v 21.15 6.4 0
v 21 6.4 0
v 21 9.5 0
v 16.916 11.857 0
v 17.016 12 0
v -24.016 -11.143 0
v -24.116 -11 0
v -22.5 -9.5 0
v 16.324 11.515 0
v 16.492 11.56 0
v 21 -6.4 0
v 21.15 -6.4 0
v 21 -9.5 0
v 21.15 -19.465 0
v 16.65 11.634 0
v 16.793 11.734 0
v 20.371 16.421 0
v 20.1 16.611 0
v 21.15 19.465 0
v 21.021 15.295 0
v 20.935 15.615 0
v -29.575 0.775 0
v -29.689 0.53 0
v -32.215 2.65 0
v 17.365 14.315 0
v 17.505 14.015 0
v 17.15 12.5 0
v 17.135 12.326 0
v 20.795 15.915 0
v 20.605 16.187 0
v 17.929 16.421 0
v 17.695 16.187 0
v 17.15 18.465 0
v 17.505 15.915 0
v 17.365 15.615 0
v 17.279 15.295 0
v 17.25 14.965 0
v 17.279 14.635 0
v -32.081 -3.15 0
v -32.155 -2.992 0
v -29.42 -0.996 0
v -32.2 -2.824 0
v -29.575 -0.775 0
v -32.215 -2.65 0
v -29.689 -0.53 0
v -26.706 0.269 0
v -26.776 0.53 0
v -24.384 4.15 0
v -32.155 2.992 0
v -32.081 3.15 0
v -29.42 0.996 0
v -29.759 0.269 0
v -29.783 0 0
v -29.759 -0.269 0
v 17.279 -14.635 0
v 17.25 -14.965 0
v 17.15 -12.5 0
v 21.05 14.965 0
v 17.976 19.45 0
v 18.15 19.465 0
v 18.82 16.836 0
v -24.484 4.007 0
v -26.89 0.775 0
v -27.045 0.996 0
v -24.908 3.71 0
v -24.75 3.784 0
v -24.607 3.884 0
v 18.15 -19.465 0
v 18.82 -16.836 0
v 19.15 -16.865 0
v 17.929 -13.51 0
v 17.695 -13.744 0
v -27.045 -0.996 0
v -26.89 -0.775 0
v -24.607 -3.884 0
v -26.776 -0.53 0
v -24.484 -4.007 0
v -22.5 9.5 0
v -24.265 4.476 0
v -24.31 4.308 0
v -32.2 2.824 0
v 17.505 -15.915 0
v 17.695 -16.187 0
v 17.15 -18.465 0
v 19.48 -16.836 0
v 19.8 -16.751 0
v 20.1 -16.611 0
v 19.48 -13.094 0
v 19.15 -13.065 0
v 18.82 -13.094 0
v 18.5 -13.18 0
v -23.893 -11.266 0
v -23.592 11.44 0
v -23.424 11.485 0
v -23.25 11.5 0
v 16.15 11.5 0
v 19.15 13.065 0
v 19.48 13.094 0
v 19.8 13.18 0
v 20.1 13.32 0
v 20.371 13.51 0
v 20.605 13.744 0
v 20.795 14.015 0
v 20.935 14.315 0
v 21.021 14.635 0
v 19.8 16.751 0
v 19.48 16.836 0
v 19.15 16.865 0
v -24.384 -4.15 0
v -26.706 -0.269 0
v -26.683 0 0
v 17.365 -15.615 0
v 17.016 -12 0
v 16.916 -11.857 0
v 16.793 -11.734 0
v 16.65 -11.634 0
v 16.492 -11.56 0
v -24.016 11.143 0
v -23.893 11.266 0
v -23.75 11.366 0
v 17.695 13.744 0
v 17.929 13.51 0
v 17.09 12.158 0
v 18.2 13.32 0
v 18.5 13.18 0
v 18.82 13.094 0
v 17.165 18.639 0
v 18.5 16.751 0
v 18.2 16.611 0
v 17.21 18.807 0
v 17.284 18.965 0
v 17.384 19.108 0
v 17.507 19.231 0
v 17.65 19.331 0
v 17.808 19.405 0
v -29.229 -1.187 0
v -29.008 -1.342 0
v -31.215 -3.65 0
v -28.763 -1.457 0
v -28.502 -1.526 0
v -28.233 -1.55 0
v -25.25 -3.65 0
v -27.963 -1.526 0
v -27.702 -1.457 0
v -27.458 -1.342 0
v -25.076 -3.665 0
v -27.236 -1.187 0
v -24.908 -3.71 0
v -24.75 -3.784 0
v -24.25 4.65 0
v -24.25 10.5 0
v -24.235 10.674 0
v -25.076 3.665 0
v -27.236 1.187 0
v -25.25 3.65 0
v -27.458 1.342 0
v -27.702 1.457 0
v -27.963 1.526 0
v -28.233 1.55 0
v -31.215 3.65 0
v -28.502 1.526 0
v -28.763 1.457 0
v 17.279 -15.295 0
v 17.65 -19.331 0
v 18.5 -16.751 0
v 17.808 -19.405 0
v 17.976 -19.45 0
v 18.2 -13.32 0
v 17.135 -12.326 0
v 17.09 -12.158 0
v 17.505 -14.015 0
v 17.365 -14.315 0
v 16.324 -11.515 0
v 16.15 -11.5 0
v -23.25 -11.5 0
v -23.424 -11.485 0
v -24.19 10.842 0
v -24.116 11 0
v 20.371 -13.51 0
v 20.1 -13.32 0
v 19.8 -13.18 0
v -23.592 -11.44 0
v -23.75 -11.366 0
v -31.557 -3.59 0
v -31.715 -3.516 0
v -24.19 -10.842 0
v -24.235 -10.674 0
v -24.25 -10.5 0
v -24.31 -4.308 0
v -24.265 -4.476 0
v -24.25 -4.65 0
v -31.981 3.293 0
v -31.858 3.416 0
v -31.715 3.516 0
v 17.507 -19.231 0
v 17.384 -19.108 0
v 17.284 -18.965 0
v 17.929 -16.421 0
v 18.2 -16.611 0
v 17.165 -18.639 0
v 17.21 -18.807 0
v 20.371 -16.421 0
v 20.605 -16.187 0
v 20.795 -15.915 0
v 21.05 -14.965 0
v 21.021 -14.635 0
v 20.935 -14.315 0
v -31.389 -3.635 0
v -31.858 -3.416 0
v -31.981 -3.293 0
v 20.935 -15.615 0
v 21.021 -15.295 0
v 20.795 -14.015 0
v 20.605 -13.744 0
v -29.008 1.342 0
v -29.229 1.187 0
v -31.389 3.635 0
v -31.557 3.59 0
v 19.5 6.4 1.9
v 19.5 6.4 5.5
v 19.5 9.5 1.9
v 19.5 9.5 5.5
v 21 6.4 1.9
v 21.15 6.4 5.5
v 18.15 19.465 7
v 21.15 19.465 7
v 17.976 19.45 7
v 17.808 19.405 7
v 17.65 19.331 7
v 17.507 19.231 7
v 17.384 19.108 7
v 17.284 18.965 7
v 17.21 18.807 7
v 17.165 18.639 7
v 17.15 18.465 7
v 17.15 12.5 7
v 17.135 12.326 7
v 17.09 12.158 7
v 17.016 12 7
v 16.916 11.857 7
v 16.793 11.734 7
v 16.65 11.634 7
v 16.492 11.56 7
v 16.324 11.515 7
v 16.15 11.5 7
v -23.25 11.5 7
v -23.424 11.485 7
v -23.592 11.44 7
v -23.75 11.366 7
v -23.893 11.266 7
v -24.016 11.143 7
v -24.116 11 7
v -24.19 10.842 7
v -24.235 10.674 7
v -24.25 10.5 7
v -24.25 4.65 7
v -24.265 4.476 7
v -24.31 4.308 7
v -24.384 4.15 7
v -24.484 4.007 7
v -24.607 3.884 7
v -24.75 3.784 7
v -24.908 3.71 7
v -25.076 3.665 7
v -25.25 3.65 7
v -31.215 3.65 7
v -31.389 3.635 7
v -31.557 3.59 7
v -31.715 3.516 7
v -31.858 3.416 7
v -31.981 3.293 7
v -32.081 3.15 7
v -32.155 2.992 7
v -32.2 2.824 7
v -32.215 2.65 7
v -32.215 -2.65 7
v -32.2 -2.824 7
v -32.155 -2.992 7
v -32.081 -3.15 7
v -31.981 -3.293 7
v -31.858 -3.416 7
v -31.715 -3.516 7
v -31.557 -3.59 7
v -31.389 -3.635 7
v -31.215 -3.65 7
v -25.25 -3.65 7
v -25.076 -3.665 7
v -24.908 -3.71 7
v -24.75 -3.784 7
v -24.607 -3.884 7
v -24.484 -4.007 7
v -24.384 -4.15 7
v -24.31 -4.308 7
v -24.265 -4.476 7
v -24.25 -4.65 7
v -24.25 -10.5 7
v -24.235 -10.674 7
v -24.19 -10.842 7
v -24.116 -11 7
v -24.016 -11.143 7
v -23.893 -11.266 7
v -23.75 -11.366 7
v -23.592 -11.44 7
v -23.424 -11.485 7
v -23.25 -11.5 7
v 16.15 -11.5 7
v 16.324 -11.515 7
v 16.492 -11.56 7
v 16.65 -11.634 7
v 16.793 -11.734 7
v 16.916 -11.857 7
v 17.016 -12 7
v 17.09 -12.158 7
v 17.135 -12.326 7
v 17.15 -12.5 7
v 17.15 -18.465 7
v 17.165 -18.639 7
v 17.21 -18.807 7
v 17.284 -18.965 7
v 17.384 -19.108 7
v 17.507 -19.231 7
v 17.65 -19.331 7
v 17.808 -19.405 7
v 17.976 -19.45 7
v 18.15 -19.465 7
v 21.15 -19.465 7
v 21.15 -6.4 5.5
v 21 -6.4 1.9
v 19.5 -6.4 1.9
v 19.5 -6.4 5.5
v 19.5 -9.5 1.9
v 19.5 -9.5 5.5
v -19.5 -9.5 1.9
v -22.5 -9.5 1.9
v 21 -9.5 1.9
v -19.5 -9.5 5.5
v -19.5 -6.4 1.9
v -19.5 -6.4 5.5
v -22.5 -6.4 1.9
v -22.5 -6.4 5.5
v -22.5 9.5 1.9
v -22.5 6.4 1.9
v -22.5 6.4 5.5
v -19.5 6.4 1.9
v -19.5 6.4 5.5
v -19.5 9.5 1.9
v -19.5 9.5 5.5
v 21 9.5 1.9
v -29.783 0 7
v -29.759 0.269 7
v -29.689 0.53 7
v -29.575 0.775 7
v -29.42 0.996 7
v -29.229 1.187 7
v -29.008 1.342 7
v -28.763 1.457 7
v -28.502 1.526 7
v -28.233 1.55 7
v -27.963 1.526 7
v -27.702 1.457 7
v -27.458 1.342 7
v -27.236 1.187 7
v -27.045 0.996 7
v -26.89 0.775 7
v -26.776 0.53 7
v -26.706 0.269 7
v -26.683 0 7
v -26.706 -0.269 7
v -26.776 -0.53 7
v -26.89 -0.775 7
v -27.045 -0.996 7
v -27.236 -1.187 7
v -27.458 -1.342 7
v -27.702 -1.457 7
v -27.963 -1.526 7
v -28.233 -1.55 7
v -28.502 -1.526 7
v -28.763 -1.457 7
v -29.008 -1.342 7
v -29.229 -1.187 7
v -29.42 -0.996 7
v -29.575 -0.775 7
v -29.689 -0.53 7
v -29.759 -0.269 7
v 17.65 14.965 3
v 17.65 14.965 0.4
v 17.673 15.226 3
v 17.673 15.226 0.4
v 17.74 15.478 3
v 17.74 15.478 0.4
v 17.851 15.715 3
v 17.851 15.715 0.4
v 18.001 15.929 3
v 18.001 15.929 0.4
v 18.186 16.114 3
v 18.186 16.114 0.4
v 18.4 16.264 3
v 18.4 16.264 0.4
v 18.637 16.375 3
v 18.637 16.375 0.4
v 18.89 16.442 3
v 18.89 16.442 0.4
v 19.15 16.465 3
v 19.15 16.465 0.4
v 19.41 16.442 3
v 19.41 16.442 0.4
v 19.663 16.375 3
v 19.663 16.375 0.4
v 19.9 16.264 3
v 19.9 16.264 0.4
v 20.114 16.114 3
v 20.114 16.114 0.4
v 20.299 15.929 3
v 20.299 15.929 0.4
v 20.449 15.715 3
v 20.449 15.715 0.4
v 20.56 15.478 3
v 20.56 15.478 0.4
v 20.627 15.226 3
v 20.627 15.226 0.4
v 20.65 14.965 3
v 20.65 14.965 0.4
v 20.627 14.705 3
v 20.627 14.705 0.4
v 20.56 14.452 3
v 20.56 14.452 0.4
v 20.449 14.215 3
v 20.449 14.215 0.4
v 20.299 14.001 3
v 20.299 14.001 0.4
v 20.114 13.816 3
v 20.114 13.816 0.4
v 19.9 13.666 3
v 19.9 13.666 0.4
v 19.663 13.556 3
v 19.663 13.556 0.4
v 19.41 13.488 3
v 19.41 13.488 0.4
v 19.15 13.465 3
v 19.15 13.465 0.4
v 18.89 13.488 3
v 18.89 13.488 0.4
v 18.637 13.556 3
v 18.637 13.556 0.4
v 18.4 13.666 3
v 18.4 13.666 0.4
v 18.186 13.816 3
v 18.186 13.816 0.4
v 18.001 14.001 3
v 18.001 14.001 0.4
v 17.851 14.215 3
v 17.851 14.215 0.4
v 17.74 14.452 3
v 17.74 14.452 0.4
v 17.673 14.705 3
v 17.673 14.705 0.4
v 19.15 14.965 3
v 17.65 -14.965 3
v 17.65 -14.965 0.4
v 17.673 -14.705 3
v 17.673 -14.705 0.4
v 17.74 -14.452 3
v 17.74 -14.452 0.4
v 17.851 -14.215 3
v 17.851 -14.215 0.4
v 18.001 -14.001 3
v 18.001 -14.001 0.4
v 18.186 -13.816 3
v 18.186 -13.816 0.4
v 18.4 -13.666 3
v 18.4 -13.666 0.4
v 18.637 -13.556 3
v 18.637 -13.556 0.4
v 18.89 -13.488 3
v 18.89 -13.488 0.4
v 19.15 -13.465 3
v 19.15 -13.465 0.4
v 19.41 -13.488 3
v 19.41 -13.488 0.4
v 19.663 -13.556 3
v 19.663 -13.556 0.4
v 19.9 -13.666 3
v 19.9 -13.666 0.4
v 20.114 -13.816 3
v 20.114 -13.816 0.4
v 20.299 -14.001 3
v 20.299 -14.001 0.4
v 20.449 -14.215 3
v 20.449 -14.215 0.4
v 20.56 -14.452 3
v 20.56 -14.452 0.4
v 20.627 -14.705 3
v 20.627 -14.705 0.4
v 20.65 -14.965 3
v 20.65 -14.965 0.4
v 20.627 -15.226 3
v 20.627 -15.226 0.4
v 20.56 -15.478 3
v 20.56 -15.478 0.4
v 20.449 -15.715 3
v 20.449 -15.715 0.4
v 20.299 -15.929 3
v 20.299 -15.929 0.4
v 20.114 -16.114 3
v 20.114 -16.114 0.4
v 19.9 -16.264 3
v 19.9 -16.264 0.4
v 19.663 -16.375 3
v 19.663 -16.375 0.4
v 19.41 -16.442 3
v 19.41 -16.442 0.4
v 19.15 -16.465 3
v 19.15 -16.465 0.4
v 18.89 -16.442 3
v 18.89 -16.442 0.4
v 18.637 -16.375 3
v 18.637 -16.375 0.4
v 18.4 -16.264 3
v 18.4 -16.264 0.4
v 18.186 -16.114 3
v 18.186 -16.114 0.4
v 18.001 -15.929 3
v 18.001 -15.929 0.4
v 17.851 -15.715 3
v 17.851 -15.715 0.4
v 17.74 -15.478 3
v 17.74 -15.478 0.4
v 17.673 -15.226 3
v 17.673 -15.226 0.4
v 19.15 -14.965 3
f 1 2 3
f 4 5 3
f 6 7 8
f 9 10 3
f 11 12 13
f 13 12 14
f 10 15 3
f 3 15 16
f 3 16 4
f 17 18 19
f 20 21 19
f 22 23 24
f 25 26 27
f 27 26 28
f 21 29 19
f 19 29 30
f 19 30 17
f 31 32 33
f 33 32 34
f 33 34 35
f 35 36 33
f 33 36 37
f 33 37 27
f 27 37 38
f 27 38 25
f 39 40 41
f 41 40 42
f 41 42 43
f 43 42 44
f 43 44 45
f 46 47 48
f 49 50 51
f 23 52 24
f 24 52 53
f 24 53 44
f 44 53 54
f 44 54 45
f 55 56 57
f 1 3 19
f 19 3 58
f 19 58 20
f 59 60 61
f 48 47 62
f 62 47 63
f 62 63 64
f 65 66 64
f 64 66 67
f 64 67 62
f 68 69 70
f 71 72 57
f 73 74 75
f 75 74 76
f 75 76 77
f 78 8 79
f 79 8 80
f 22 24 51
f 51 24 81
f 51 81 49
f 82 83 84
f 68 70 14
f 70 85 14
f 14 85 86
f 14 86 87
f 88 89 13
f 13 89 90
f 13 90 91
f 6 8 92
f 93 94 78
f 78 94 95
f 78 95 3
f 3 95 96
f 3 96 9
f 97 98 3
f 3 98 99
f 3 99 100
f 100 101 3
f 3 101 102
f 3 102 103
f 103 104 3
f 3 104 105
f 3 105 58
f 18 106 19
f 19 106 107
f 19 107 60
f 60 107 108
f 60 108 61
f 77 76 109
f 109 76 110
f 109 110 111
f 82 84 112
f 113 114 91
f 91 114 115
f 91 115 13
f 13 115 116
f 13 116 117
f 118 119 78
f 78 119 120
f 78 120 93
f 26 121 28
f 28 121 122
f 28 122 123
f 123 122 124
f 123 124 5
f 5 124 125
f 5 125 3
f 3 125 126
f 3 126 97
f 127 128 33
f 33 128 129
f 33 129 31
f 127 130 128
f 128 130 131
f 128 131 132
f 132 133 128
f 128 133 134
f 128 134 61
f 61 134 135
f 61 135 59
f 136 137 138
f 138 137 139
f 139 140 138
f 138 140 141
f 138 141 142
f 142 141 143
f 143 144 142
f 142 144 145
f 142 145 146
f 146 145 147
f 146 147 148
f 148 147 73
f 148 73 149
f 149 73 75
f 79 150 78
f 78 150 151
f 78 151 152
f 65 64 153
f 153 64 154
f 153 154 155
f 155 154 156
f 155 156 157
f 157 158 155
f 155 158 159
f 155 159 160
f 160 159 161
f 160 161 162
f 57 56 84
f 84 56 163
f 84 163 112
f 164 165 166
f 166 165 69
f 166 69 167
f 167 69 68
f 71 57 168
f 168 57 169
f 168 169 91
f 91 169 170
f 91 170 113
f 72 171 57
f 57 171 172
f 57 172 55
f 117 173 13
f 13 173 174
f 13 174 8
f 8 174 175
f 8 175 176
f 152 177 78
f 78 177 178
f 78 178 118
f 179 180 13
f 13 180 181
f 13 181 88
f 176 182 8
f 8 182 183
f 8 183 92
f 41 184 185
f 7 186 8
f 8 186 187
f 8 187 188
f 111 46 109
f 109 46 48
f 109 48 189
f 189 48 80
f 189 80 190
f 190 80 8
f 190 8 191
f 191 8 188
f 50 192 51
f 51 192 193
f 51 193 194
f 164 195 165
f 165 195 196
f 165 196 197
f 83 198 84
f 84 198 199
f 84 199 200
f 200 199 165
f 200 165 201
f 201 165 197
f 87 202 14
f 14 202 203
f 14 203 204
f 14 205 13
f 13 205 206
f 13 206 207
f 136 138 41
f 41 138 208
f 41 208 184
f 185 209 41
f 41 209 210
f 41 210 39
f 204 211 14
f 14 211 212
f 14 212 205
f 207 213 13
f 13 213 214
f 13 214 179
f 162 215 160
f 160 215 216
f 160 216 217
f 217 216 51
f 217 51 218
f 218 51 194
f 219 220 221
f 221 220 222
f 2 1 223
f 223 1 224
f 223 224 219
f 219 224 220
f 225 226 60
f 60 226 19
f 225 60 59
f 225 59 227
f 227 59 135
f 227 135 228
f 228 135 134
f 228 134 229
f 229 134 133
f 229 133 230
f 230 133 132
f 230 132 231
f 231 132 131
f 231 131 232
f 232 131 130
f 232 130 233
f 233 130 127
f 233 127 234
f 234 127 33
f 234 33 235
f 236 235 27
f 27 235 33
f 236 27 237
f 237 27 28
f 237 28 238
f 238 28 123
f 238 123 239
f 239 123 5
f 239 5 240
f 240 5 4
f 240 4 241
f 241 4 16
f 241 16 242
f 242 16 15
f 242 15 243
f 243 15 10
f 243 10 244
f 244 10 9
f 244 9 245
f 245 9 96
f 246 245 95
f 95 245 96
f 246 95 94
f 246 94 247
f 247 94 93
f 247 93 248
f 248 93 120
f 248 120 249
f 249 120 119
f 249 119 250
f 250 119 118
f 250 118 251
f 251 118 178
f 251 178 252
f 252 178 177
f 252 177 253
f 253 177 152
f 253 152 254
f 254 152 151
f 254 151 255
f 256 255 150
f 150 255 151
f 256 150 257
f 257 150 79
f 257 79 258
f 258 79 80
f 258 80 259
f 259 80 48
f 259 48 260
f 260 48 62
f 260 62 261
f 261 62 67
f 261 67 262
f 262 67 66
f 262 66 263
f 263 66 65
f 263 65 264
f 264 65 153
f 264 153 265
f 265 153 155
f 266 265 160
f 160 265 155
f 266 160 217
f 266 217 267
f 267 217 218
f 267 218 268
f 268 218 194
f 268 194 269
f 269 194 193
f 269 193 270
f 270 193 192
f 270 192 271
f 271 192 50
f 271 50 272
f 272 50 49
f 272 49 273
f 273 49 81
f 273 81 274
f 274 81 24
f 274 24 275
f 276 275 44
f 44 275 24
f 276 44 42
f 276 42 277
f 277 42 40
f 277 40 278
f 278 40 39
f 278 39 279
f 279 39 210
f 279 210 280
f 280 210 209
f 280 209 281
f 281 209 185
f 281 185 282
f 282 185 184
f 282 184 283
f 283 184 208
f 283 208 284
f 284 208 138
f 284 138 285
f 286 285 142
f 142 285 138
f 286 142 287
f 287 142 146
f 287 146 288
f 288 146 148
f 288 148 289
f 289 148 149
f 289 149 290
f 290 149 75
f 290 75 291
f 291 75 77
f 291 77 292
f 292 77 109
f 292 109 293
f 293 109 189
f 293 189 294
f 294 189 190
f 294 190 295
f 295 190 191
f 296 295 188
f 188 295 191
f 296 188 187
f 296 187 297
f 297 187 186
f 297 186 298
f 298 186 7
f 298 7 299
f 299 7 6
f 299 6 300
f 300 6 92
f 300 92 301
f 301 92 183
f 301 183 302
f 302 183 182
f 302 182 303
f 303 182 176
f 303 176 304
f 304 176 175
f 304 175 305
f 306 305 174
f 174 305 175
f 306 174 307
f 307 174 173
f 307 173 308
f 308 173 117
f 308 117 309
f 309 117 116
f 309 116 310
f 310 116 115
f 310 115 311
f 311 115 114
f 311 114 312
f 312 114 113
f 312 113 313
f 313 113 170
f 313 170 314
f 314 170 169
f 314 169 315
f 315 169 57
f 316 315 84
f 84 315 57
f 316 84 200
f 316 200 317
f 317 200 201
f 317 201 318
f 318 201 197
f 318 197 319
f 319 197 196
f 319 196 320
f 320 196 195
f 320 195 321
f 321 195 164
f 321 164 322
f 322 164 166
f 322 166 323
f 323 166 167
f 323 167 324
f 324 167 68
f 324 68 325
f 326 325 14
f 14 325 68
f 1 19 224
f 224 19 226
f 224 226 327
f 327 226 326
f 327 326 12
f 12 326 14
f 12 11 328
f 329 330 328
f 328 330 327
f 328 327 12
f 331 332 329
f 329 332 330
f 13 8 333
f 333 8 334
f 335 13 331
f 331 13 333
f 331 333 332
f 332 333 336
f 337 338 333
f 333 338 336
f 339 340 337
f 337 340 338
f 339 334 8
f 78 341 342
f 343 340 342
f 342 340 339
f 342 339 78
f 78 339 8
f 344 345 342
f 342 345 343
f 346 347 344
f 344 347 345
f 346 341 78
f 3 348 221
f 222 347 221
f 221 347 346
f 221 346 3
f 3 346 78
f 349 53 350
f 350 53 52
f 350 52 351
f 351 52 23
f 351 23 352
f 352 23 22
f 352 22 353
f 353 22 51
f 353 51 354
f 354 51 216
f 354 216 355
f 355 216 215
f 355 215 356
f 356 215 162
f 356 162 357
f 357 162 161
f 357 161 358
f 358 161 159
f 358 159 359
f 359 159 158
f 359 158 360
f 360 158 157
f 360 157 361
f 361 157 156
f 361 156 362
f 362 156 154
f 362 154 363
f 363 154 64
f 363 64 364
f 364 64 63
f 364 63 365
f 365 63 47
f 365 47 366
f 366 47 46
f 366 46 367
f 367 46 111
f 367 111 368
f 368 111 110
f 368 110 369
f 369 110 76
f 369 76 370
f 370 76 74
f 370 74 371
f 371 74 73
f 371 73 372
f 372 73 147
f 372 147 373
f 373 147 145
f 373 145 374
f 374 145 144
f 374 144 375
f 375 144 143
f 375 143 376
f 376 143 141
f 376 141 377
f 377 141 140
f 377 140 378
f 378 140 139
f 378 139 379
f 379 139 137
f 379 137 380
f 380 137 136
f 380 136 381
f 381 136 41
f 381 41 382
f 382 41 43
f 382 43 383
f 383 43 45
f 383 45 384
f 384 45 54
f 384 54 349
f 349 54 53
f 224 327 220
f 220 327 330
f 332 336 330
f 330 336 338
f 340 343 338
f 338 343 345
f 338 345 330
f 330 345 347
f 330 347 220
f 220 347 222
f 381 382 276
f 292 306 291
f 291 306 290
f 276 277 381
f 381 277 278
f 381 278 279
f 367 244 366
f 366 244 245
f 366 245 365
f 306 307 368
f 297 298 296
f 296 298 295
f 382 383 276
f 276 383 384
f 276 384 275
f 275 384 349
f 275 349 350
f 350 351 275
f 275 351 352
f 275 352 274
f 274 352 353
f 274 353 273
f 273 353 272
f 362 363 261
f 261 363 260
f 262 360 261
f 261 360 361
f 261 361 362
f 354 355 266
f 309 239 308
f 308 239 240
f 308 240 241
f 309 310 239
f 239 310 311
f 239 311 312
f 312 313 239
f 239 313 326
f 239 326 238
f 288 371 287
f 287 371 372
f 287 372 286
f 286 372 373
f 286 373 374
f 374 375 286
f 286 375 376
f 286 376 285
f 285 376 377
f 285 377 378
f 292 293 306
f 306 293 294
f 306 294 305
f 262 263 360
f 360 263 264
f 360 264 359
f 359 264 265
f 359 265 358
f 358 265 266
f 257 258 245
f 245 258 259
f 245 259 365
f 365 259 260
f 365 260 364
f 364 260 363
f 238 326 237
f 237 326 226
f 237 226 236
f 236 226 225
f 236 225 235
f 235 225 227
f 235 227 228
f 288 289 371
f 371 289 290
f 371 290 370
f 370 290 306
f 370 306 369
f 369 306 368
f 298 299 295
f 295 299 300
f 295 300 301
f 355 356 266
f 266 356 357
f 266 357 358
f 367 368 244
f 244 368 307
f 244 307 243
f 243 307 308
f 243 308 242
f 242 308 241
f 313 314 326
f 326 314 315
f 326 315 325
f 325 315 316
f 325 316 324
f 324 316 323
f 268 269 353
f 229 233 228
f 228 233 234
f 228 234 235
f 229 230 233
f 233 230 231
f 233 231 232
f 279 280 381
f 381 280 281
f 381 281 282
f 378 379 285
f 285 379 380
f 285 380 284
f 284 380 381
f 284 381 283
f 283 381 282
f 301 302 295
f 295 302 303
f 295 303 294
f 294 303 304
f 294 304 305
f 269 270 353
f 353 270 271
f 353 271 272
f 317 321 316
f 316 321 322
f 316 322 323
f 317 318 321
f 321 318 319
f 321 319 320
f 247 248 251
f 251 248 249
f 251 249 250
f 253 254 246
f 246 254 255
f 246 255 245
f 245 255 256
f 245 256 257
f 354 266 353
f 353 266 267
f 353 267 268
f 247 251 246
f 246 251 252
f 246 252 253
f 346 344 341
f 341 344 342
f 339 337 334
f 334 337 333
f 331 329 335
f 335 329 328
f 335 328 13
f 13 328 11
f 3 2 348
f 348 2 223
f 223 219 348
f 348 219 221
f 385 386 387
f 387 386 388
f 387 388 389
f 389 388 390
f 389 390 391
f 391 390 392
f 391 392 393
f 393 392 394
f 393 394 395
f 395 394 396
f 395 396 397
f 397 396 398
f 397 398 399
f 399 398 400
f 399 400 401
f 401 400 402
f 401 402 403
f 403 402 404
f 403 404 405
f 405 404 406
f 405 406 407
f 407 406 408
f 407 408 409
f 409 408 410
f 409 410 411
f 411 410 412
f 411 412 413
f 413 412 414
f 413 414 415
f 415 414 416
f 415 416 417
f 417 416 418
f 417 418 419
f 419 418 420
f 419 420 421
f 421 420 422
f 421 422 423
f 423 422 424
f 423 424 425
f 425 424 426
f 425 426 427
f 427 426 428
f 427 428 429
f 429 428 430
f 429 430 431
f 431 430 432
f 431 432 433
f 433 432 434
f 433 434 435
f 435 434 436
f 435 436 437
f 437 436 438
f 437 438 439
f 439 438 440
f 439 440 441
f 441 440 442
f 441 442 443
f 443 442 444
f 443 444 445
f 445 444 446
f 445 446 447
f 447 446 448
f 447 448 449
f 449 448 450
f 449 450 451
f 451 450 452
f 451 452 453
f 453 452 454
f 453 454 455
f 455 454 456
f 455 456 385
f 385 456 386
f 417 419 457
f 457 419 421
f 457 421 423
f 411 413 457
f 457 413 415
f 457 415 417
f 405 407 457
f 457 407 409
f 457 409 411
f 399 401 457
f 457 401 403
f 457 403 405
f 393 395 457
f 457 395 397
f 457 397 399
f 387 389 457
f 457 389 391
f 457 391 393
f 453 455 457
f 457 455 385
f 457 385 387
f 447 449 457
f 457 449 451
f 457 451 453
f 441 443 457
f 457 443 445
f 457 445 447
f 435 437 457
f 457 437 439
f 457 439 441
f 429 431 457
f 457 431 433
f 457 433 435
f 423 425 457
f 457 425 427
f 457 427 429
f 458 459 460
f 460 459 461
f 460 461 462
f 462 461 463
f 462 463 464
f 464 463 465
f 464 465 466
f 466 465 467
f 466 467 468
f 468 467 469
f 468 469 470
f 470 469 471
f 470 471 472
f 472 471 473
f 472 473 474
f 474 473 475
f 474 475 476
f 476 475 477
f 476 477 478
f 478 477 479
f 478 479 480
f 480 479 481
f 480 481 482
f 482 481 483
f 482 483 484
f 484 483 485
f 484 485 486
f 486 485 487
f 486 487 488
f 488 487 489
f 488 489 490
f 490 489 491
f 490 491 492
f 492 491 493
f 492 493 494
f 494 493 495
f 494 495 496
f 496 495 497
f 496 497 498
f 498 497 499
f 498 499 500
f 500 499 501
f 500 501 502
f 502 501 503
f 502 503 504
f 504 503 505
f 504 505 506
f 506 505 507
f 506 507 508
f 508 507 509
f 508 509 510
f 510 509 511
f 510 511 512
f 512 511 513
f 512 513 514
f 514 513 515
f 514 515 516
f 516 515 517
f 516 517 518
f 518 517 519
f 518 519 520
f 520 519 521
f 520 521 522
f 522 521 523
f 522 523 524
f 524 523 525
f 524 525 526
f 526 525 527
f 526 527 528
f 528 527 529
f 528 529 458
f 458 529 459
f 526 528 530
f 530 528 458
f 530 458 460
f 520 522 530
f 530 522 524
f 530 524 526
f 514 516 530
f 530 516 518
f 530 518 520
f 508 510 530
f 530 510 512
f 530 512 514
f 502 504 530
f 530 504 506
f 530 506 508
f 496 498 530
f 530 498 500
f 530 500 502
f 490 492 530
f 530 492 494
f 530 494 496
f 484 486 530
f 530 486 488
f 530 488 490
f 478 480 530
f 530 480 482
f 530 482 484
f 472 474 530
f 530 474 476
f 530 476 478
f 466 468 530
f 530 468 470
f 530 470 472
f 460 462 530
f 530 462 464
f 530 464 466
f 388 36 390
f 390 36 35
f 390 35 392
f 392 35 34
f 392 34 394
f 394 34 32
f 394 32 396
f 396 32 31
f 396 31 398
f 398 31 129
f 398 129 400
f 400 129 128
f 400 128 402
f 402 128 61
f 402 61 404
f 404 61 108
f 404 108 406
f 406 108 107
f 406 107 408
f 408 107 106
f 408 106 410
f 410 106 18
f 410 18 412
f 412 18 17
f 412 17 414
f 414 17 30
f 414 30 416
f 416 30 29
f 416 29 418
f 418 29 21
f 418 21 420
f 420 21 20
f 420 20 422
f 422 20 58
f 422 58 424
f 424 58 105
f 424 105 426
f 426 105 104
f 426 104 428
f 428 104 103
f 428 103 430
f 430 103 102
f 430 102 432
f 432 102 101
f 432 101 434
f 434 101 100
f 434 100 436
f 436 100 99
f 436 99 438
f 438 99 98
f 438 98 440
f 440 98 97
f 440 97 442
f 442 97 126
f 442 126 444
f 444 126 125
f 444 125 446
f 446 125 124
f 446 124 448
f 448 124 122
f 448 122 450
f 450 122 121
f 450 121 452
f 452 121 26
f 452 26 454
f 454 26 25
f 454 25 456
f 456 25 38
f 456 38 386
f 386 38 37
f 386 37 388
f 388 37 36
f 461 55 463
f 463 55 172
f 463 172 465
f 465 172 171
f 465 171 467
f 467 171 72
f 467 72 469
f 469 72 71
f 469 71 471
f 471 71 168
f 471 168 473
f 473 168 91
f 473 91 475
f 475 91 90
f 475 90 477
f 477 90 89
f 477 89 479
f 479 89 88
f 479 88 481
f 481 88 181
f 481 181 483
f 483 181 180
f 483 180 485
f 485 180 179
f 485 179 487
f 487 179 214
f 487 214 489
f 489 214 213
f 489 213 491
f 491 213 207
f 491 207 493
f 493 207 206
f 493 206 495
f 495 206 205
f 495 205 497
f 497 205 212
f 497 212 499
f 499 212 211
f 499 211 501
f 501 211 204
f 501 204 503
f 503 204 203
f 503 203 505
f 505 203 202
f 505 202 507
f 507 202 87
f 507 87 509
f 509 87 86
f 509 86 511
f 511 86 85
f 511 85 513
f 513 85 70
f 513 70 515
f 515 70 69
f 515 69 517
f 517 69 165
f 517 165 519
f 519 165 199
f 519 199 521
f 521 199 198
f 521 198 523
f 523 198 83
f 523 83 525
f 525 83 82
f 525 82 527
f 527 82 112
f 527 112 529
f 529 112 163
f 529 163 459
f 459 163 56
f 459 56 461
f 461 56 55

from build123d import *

# Parameters (mm, degrees)
CROQUIS1_R              = 1.55
SALIENTE_EXTRUIR1_DEPTH = 5.5
CROQUIS2_R              = 1.55
SALIENTE_EXTRUIR2_DEPTH = 1.5
CROQUIS3_W              = 43.5
CROQUIS3_H              = 19
CORTAR_EXTRUIR1_DEPTH   = 1.9
CROQUIS4_R              = 1.5
CORTAR_EXTRUIR2_DEPTH   = 3
CHAFL_N1_SIZE           = 0.4


with BuildPart() as part:
    # Croquis1 → Saliente-Extruir1 (new body)
    with BuildSketch(Plane.XY):
        with BuildLine():
            Line((16.15, 11.5), (-23.25, 11.5))
            ThreePointArc((-23.25, 11.5), (-23.957106781, 11.207106781), (-24.25, 10.5))
            Line((-24.25, 10.5), (-24.25, 4.65))
            ThreePointArc((-24.25, 4.65), (-24.542893219, 3.942893219), (-25.25, 3.65))
            Line((-25.25, 3.65), (-31.215212315, 3.65))
            ThreePointArc((-31.215212315, 3.65), (-31.922319096, 3.357106781), (-32.215212315, 2.65))
            Line((-32.215212315, 2.65), (-32.215212315, -2.65))
            ThreePointArc((-32.215212315, -2.65), (-31.922319096, -3.357106781), (-31.215212315, -3.65))
            Line((-31.215212315, -3.65), (-25.25, -3.65))
            ThreePointArc((-25.25, -3.65), (-24.542893219, -3.942893219), (-24.25, -4.65))
            Line((-24.25, -4.65), (-24.25, -10.5))
            ThreePointArc((-24.25, -10.5), (-23.957106781, -11.207106781), (-23.25, -11.5))
            Line((-23.25, -11.5), (16.15, -11.5))
            ThreePointArc((16.15, -11.5), (16.857106781, -11.792893219), (17.15, -12.5))
            Line((17.15, -12.5), (17.15, -18.465212315))
            ThreePointArc((17.15, -18.465212315), (17.442893219, -19.172319096), (18.15, -19.465212315))
            Line((18.15, -19.465212315), (21.15, -19.465212315))
            Line((21.15, -19.465212315), (21.15, -6.4))
            Line((21.15, -6.4), (19.5, -6.4))
            Line((19.5, -6.4), (19.5, -9.5))
            Line((19.5, -9.5), (-19.5, -9.5))
            Line((-19.5, -9.5), (-19.5, -6.4))
            Line((-19.5, -6.4), (-22.5, -6.4))
            Line((-22.5, -6.4), (-22.5, 6.4))
            Line((-22.5, 6.4), (-19.5, 6.4))
            Line((-19.5, 6.4), (-19.5, 9.5))
            Line((-19.5, 9.5), (19.5, 9.5))
            Line((19.5, 9.5), (19.5, 6.4))
            Line((19.5, 6.4), (21.15, 6.4))
            Line((21.15, 6.4), (21.15, 19.465212315))
            Line((21.15, 19.465212315), (18.15, 19.465212315))
            ThreePointArc((18.15, 19.465212315), (17.442893219, 19.172319096), (17.15, 18.465212315))
            Line((17.15, 18.465212315), (17.15, 12.5))
            ThreePointArc((17.15, 12.5), (16.857106781, 11.792893219), (16.15, 11.5))
        make_face()
        with Locations((-28.232606158, 0)):
            Circle(CROQUIS1_R, mode=Mode.SUBTRACT)
    extrude(amount=SALIENTE_EXTRUIR1_DEPTH)

    # Croquis2 → Saliente-Extruir2 (add)
    with BuildSketch(Plane.XY.offset(5.5)):
        with BuildLine():
            Line((21.15, -6.4), (21.15, 6.4))
            Line((21.15, 6.4), (21.15, 19.465212315))
            Line((21.15, 19.465212315), (18.15, 19.465212315))
            ThreePointArc((18.15, 19.465212315), (17.442893219, 19.172319096), (17.15, 18.465212315))
            Line((17.15, 18.465212315), (17.15, 12.5))
            ThreePointArc((17.15, 12.5), (16.857106781, 11.792893219), (16.15, 11.5))
            Line((16.15, 11.5), (-23.25, 11.5))
            ThreePointArc((-23.25, 11.5), (-23.957106781, 11.207106781), (-24.25, 10.5))
            Line((-24.25, 10.5), (-24.25, 4.65))
            ThreePointArc((-24.25, 4.65), (-24.542893219, 3.942893219), (-25.25, 3.65))
            Line((-25.25, 3.65), (-31.215212315, 3.65))
            ThreePointArc((-31.215212315, 3.65), (-31.922319096, 3.357106781), (-32.215212315, 2.65))
            Line((-32.215212315, 2.65), (-32.215212315, -2.65))
            ThreePointArc((-32.215212315, -2.65), (-31.922319096, -3.357106781), (-31.215212315, -3.65))
            Line((-31.215212315, -3.65), (-25.25, -3.65))
            ThreePointArc((-25.25, -3.65), (-24.542893219, -3.942893219), (-24.25, -4.65))
            Line((-24.25, -4.65), (-24.25, -10.5))
            ThreePointArc((-24.25, -10.5), (-23.957106781, -11.207106781), (-23.25, -11.5))
            Line((-23.25, -11.5), (16.15, -11.5))
            ThreePointArc((16.15, -11.5), (16.857106781, -11.792893219), (17.15, -12.5))
            Line((17.15, -12.5), (17.15, -18.465212315))
            ThreePointArc((17.15, -18.465212315), (17.442893219, -19.172319096), (18.15, -19.465212315))
            Line((18.15, -19.465212315), (21.15, -19.465212315))
            Line((21.15, -19.465212315), (21.15, -6.4))
        make_face()
        with Locations((-28.232606158, 0)):
            Circle(CROQUIS2_R, mode=Mode.SUBTRACT)
    extrude(amount=SALIENTE_EXTRUIR2_DEPTH)

    # Croquis3 → Cortar-Extruir1 (cut)
    with BuildSketch(Plane(origin=(0, 0, 0), x_dir=(-1, 0, 0), z_dir=(0, 0, -1))):
        with Locations((0.75, 0)):
            Rectangle(CROQUIS3_W, CROQUIS3_H)
    extrude(amount=-CORTAR_EXTRUIR1_DEPTH, mode=Mode.SUBTRACT)

    # Croquis4 → Cortar-Extruir2 (cut)
    with BuildSketch(Plane(origin=(0, 0, 0), x_dir=(-1, 0, 0), z_dir=(0, 0, -1))):
        with Locations((-19.15, -14.965212315)):
            Circle(CROQUIS4_R)
        with Locations((-19.15, 14.965212315)):
            Circle(CROQUIS4_R)
    extrude(amount=-CORTAR_EXTRUIR2_DEPTH, mode=Mode.SUBTRACT)

    # Chaflán1
    chafl_n1_edges = [part.edges().sort_by_distance(p)[0] for p in [
        (20.65, -14.965212315, 0),
        (20.65, 14.965212315, 0),
    ]]
    chamfer(chafl_n1_edges, length=CHAFL_N1_SIZE)


solid = part.part
